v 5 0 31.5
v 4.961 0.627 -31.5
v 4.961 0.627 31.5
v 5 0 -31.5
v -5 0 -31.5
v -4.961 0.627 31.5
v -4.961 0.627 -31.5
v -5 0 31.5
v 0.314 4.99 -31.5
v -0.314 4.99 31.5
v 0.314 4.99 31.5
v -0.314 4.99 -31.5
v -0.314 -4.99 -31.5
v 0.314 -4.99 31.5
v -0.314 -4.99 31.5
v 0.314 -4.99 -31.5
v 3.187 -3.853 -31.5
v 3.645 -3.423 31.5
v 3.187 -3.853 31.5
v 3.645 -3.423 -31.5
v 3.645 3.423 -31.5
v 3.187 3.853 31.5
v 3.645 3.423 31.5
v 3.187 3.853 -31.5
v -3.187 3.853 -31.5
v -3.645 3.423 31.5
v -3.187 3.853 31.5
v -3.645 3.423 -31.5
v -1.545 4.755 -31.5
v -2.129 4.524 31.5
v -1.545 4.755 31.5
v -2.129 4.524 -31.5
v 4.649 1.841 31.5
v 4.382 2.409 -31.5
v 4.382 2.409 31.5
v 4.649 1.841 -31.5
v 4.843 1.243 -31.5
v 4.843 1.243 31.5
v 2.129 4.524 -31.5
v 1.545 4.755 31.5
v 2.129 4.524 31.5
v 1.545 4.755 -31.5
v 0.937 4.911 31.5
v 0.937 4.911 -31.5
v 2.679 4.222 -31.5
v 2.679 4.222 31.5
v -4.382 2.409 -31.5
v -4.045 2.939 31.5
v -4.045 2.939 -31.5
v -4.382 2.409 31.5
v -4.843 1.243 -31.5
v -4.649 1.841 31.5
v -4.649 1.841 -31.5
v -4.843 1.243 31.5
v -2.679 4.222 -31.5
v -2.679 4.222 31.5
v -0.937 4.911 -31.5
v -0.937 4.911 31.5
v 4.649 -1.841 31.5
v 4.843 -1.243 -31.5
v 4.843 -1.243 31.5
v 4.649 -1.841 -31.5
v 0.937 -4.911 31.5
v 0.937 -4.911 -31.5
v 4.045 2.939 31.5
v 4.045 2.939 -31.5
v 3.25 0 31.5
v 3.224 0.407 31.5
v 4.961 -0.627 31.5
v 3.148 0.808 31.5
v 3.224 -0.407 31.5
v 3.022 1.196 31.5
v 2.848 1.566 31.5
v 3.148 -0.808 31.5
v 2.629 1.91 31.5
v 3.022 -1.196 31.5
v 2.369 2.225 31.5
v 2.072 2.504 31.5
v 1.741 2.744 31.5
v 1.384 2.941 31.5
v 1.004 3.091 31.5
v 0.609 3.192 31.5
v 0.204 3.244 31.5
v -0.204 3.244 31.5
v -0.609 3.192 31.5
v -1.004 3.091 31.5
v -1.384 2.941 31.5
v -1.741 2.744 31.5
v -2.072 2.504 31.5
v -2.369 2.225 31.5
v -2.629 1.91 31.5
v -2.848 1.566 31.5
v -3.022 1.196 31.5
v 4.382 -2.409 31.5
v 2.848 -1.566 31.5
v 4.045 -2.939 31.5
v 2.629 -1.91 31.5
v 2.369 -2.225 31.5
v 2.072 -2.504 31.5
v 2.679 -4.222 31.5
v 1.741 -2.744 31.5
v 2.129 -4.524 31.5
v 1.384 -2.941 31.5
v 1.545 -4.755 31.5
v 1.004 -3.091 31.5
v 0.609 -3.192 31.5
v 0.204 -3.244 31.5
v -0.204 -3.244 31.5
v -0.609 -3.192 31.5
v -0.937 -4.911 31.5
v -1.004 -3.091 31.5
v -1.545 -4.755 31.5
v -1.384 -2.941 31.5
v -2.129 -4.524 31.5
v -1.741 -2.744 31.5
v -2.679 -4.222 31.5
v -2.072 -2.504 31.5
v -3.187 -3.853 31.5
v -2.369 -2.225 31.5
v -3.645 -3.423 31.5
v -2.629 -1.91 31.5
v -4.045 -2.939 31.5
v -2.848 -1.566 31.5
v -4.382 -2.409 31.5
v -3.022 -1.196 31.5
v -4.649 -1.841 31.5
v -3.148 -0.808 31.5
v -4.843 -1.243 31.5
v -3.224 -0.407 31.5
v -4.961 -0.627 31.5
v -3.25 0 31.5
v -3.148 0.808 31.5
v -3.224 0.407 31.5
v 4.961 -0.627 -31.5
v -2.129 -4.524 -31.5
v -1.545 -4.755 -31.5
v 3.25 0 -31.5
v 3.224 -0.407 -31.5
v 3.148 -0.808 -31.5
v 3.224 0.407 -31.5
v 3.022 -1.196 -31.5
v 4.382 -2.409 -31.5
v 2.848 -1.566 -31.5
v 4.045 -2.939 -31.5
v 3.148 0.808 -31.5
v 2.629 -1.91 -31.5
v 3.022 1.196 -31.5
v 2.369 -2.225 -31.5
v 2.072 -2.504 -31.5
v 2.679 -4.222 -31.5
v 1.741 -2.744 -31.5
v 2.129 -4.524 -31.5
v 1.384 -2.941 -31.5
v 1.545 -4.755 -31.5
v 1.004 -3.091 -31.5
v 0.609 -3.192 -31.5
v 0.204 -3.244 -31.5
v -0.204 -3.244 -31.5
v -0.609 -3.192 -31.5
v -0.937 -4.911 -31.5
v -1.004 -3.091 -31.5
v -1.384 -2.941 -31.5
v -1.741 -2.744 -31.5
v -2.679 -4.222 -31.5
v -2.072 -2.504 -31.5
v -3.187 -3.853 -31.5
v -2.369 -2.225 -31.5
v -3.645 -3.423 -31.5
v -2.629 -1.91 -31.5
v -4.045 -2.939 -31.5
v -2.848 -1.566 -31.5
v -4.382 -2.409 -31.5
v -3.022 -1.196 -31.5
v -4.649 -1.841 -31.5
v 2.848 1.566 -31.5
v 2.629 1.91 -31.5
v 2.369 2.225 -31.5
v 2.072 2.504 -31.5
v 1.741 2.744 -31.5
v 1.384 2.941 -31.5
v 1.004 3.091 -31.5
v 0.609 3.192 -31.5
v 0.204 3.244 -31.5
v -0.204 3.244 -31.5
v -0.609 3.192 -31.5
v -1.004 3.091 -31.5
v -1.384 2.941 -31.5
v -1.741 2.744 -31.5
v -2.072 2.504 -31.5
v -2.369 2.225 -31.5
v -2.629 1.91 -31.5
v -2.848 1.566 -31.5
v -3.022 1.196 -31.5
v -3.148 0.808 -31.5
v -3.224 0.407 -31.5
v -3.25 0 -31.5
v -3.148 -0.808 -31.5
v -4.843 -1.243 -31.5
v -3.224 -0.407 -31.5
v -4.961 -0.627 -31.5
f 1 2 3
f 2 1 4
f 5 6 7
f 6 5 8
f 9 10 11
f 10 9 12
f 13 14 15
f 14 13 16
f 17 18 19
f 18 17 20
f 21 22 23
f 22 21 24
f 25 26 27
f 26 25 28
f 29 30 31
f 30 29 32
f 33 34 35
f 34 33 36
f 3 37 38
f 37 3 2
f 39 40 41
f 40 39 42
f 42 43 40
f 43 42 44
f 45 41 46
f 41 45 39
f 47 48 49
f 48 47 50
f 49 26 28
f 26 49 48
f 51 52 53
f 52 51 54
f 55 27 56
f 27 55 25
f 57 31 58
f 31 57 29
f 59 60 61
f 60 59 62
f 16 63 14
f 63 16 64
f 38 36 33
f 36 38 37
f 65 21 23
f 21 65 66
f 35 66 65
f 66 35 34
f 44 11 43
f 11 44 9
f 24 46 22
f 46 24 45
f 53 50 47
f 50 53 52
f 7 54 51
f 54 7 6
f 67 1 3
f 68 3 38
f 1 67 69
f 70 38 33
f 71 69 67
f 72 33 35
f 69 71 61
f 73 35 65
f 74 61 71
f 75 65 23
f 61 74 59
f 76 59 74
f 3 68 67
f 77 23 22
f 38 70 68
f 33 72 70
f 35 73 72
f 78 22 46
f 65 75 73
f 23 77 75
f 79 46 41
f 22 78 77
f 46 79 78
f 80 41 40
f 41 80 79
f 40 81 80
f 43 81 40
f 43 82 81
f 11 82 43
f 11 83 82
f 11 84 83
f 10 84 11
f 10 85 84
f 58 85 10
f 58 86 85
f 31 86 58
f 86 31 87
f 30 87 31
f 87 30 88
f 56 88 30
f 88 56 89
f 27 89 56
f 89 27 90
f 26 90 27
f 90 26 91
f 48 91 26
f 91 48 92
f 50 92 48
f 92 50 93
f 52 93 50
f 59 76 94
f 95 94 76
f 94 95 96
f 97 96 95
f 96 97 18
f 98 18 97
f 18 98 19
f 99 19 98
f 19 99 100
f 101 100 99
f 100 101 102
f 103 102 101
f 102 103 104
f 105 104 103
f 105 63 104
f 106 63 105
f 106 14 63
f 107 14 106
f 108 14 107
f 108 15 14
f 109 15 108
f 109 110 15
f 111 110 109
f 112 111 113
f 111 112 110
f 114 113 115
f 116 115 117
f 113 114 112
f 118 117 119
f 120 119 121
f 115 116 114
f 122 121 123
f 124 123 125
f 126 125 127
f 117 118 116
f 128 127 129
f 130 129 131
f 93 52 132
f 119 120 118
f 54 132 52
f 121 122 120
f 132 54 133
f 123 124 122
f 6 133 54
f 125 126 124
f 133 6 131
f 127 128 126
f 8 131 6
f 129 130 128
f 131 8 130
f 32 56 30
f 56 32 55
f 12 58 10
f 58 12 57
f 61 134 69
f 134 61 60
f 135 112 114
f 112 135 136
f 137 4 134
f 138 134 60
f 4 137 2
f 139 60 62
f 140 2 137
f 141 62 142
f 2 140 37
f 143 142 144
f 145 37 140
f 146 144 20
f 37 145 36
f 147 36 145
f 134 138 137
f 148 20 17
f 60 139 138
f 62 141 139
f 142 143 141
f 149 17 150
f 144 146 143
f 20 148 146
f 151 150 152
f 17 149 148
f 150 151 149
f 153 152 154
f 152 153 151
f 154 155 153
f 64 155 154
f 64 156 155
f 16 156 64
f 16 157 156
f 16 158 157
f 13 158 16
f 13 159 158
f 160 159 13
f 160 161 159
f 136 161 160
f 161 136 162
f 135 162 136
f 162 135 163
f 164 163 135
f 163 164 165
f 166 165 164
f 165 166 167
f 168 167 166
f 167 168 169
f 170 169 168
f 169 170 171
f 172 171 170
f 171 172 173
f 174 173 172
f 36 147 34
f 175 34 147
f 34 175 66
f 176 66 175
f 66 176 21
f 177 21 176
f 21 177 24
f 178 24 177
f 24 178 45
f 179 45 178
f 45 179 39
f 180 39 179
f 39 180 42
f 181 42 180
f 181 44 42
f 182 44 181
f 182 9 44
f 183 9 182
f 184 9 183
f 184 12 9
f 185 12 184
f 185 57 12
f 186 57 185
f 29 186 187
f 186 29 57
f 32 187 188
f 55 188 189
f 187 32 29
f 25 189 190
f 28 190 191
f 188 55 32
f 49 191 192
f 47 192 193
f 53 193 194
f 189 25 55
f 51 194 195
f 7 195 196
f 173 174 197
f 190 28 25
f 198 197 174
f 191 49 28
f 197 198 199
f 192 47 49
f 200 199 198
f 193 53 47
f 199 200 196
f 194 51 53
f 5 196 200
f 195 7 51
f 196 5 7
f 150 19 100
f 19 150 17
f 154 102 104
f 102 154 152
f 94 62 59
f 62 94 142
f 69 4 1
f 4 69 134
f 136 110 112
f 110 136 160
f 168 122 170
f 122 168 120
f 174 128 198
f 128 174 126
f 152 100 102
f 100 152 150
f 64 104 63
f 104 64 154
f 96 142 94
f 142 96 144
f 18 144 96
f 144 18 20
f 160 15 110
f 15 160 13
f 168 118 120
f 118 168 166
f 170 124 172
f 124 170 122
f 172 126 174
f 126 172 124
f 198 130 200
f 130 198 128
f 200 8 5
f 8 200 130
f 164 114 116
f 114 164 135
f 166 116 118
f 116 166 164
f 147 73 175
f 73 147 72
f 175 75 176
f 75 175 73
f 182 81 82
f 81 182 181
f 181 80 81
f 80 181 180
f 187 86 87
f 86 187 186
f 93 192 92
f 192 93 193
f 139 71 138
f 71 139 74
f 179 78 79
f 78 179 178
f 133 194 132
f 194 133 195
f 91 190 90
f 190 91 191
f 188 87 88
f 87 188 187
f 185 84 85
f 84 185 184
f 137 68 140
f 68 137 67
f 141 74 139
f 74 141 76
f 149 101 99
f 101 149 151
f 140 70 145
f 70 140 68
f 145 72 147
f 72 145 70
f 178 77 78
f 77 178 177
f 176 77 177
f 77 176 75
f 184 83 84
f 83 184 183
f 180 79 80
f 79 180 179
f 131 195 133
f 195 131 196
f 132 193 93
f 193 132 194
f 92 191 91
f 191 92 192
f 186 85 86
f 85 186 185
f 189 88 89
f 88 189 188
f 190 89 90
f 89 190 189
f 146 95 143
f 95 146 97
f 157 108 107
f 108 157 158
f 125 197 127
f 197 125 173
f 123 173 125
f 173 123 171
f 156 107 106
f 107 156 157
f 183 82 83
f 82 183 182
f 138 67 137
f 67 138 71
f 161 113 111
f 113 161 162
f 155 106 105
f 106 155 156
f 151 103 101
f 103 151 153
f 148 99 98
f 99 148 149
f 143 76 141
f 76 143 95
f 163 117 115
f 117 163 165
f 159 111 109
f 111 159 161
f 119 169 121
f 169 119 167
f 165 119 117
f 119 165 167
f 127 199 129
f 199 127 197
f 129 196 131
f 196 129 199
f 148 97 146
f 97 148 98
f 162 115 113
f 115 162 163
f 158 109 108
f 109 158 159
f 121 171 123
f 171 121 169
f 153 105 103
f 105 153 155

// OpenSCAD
$fn = 50;


difference() {
	union() {
		translate(v = [0, 0, -31.5000000000]) {
			cylinder(h = 63, r = 5.0000000000);
		}
	}
	union() {
		translate(v = [0, 0, -100.0000000000]) {
			cylinder(h = 200, r = 3.2500000000);
		}
	}
}
